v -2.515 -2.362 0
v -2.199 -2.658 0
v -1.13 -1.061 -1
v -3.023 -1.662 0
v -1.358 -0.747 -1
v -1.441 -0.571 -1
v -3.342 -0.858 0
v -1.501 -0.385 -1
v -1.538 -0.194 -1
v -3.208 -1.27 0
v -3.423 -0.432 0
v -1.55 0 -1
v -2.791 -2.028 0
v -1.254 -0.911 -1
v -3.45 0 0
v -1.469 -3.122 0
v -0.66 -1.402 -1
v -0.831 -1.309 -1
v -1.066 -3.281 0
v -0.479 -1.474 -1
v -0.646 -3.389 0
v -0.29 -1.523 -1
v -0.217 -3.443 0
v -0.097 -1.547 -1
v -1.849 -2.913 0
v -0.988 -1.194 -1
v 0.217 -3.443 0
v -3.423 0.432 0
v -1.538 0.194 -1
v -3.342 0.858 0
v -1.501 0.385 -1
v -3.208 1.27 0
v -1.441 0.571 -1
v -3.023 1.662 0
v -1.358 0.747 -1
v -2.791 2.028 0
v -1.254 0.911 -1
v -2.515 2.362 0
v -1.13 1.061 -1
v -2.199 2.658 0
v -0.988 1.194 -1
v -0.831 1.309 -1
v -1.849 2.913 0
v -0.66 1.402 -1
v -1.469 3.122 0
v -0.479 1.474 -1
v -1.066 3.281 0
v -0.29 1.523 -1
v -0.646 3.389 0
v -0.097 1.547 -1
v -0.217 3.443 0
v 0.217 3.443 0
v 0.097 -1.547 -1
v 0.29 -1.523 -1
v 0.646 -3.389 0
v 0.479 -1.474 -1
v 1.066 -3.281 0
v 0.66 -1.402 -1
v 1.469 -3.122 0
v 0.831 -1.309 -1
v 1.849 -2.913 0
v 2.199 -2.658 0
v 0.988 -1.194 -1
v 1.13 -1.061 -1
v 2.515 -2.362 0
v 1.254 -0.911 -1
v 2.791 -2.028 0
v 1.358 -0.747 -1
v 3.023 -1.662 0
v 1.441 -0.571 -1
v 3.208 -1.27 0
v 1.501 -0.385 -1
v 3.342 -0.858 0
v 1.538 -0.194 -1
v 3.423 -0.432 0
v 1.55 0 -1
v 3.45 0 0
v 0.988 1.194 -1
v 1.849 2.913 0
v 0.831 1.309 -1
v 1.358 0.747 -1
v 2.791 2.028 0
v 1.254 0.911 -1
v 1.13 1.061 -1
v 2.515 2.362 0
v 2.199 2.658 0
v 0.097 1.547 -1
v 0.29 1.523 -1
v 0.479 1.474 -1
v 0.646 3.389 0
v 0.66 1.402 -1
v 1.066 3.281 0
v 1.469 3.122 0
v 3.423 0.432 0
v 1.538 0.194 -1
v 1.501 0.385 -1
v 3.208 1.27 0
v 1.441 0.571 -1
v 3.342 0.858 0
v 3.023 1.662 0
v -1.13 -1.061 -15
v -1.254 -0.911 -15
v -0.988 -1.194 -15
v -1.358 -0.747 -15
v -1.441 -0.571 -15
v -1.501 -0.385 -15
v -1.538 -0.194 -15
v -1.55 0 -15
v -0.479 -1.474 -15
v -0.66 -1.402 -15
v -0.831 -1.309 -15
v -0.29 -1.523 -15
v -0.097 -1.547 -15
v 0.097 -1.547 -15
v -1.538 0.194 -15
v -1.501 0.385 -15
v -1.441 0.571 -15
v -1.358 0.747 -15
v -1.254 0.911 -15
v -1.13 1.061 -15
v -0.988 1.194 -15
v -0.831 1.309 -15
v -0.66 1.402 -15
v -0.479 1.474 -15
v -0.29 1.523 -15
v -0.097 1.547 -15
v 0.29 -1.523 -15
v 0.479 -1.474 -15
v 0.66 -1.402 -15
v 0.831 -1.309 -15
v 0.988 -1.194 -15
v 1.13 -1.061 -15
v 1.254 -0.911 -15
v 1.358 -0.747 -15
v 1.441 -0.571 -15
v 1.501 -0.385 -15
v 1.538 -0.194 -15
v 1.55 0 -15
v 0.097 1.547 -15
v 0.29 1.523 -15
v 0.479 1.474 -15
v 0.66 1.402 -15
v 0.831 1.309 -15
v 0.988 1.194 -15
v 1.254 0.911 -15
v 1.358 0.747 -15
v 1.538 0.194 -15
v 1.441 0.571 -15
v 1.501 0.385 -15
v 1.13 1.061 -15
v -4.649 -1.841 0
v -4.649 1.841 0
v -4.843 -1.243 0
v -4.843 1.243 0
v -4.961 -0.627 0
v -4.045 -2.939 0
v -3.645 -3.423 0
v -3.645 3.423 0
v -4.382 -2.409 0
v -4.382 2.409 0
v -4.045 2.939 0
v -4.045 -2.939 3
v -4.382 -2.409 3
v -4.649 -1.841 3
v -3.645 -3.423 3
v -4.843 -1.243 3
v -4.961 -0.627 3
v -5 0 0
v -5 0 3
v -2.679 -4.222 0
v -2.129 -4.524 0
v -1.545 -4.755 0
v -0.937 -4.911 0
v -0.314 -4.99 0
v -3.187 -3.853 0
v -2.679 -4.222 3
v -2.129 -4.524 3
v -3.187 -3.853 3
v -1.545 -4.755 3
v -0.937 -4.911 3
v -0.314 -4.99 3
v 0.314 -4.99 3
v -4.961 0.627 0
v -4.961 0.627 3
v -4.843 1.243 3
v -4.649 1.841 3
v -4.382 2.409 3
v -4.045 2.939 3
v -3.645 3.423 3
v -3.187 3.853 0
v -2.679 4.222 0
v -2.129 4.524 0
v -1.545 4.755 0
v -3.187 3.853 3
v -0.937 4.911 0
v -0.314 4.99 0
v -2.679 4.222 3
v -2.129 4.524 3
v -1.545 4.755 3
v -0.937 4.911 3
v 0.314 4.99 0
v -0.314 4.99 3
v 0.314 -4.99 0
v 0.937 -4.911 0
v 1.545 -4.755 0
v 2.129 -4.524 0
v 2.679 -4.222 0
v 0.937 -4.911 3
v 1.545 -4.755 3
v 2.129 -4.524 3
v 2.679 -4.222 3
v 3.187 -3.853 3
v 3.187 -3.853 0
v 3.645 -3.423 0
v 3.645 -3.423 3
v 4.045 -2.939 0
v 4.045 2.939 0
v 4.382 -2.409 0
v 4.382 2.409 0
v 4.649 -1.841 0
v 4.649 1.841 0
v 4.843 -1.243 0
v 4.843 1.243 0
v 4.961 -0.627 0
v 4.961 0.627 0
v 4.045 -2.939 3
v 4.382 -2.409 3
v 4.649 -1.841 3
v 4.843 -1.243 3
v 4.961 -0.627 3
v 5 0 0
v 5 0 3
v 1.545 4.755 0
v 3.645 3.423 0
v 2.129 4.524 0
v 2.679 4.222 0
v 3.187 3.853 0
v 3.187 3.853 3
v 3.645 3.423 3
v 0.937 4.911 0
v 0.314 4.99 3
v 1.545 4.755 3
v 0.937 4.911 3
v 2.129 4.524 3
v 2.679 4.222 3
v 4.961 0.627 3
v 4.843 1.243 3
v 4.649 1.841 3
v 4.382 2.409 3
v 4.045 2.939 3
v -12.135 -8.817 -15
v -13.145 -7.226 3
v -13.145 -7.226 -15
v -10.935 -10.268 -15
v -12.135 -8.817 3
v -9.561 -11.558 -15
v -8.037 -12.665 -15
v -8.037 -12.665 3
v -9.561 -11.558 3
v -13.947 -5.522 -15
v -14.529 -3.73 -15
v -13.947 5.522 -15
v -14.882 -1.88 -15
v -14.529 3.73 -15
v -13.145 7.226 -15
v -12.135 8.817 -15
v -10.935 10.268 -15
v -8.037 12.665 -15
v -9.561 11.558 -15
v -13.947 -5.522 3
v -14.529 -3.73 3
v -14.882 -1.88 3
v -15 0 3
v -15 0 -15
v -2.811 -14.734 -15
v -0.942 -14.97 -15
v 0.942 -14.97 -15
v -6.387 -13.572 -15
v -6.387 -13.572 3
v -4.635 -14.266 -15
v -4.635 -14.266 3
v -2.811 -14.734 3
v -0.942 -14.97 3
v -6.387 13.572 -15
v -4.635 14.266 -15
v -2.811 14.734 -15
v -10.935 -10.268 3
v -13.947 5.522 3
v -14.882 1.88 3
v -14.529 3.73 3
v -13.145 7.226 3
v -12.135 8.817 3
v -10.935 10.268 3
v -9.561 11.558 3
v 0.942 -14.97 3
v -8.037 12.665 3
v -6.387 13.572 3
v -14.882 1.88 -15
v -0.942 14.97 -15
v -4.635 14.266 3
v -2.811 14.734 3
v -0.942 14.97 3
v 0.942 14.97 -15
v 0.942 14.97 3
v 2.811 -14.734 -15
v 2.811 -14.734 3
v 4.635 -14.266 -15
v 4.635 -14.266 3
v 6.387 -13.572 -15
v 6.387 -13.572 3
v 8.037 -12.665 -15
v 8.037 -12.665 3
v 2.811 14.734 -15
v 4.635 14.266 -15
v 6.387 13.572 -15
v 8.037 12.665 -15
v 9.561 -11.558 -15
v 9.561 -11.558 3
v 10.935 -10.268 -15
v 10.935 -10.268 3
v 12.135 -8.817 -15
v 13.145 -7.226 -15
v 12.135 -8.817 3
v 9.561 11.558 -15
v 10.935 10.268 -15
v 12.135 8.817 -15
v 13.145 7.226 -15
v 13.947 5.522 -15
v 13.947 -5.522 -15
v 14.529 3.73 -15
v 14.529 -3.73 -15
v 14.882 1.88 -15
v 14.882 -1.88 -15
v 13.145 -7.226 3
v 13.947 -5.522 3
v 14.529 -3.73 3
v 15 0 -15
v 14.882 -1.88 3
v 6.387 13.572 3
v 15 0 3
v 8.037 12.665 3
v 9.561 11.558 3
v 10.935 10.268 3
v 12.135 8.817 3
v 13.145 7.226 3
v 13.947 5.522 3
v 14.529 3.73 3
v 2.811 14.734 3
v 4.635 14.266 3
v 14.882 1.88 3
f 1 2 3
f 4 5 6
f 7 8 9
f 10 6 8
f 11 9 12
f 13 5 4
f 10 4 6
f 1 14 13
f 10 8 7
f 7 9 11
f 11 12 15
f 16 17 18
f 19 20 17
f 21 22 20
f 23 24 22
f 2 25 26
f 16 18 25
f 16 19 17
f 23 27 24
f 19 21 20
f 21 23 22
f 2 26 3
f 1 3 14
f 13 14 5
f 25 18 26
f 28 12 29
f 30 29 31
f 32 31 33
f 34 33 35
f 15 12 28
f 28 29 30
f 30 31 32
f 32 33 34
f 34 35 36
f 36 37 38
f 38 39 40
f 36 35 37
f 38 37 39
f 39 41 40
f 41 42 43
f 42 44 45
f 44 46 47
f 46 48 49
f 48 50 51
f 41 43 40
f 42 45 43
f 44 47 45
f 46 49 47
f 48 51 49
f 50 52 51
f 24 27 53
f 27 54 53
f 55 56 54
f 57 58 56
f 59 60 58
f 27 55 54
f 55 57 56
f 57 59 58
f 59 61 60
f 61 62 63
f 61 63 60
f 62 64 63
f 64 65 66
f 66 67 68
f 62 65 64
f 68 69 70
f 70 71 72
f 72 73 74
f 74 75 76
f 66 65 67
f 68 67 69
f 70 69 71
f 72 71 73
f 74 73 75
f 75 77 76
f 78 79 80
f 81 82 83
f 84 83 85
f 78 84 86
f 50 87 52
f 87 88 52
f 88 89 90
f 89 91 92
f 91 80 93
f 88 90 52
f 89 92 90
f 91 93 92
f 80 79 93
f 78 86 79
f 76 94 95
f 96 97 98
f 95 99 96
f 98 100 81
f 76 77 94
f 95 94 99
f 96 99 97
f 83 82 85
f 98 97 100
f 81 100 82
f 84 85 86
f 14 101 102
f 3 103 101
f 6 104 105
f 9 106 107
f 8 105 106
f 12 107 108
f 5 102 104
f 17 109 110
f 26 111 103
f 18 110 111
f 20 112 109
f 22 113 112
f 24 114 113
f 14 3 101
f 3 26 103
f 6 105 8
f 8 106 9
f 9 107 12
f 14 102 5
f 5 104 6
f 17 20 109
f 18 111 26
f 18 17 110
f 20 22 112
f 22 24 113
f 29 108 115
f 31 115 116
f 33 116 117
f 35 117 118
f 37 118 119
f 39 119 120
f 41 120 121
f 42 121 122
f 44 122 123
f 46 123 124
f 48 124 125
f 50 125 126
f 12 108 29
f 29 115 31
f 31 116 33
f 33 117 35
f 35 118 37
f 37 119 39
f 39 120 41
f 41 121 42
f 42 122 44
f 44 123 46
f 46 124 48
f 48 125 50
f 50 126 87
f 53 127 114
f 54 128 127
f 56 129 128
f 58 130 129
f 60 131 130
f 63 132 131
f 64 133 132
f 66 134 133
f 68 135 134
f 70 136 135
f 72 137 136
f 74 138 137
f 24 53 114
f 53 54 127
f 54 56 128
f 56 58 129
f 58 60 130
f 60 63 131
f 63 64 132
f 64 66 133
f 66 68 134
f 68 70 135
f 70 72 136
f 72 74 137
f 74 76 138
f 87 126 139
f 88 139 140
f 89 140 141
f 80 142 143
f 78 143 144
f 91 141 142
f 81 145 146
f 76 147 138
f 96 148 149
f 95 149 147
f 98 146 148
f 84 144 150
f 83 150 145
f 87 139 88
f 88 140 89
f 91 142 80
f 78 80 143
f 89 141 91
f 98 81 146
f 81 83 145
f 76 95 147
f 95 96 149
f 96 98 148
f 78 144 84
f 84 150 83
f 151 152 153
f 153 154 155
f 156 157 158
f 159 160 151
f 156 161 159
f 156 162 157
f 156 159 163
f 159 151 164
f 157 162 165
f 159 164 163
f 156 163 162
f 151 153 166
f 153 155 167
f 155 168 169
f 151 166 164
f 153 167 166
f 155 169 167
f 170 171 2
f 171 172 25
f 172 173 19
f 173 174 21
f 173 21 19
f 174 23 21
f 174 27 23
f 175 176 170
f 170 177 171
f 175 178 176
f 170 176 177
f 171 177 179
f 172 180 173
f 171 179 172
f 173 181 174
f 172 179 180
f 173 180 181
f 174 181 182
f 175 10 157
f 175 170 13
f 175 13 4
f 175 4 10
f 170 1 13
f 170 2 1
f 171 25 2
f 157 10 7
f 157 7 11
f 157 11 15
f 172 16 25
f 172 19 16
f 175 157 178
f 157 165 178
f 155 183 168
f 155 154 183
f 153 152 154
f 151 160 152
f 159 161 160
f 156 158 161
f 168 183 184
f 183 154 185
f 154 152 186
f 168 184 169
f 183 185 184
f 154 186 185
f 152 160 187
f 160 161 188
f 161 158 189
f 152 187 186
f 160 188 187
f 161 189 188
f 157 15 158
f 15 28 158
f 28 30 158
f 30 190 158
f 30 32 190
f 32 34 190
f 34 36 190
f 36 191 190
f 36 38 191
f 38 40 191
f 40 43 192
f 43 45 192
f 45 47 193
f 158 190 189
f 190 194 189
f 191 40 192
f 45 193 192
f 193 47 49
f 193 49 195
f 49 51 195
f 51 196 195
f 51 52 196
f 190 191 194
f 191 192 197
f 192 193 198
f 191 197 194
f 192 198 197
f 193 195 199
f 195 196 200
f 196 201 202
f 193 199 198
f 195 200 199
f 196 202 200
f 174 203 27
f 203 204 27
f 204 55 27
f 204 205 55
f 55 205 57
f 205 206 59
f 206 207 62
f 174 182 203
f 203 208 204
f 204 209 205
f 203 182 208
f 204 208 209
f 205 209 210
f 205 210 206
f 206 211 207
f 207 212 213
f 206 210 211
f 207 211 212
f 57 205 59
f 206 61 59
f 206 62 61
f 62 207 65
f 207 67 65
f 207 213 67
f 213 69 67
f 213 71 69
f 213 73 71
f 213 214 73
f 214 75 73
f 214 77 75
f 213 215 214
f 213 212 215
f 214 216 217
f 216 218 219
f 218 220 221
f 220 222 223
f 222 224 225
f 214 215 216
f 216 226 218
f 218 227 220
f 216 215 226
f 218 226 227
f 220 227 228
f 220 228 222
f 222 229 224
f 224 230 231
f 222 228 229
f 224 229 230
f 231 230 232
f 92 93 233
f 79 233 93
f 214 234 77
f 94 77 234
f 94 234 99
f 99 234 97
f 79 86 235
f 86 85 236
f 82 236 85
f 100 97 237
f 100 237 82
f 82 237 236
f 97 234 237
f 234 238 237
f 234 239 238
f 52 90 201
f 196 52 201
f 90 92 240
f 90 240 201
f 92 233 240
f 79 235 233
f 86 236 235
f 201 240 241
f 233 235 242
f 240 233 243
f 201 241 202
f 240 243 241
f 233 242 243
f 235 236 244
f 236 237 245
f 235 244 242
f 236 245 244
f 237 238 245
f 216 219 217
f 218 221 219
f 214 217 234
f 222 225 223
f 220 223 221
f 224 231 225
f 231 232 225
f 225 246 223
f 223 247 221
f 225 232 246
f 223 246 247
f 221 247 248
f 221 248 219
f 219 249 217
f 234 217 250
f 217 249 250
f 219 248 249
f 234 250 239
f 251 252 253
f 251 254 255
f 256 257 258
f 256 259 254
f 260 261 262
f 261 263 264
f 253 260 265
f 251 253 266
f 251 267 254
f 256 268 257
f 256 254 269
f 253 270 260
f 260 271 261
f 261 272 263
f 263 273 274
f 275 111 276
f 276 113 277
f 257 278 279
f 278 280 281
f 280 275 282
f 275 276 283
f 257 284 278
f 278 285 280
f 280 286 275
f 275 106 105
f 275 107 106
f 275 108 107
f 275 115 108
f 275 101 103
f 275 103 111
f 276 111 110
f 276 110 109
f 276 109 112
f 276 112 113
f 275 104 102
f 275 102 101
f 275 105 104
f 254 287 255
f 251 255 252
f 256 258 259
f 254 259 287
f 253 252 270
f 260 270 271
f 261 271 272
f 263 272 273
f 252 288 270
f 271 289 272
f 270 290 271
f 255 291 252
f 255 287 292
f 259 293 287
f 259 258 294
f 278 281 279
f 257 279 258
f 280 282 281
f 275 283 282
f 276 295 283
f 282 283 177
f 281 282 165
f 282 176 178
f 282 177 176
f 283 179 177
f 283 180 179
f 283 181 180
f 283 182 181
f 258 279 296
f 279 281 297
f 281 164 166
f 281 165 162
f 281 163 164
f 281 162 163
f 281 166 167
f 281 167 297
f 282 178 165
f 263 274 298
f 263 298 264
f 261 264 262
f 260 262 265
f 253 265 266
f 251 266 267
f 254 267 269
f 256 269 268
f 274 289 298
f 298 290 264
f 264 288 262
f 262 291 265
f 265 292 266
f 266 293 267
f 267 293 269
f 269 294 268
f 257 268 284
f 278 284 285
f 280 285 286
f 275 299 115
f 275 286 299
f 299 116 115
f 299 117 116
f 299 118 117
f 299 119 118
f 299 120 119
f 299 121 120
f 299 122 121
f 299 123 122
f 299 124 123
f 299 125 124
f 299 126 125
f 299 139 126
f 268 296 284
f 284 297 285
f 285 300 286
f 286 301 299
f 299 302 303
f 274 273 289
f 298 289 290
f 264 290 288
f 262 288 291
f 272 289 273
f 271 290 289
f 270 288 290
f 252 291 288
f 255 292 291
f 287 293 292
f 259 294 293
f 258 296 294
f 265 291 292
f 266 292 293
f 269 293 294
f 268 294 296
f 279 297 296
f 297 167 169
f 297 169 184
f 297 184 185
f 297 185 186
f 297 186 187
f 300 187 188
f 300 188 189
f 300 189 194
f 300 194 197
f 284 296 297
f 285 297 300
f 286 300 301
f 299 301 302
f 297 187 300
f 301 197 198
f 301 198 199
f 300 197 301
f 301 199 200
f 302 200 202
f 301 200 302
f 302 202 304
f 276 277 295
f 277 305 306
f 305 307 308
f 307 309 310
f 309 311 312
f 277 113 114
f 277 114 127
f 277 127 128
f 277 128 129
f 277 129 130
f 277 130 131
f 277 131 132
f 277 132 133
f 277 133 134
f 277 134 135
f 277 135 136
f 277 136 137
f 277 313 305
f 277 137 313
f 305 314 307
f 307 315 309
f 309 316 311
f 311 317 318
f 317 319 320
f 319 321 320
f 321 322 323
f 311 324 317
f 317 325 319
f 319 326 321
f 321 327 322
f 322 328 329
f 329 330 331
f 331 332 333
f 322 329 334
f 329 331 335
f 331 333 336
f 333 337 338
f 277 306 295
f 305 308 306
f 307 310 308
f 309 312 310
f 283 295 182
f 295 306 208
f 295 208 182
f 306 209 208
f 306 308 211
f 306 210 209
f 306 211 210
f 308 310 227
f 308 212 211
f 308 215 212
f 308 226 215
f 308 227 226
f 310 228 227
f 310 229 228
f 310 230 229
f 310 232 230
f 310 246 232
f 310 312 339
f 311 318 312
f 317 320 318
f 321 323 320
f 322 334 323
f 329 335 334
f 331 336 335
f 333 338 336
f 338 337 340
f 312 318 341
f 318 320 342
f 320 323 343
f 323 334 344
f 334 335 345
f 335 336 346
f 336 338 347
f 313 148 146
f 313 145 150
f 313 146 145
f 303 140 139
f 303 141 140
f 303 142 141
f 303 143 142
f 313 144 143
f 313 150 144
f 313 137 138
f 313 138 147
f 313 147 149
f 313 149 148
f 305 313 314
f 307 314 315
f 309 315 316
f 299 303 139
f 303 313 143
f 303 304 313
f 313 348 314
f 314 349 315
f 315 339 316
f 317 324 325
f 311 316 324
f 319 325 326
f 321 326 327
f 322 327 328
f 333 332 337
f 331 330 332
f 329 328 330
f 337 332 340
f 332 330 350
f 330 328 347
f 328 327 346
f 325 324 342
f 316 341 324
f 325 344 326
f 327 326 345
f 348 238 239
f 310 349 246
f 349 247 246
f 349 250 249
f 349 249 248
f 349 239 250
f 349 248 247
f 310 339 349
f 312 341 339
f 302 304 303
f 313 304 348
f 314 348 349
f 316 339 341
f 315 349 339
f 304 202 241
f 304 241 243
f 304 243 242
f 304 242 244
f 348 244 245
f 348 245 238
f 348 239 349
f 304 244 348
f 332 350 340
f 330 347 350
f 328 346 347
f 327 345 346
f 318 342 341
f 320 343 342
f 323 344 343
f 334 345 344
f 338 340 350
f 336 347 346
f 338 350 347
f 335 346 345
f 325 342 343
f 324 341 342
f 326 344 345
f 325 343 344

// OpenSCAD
$fn = 50;

difference() {
	union() {
		translate(v = [0, 0, -15.0]) {
			cylinder(h = 18, r = 15.0);
		}
	}
	union() {
		translate(v = [0, 0, 0]) {
			rotate(a = [0, 0, 0]) {
				difference() {
					union() {
						translate(v = [0, 0, -18.0]) {
							cylinder(h = 18, r = 1.25);
						}
						translate(v = [0, 0, -1.0]) {
							cylinder(h = 1.0, r1 = 1.55, r2 = 3.45);
						}
						translate(v = [0, 0, -18.0]) {
							cylinder(h = 18, r = 1.55);
						}
						translate(v = [0, 0, -18.0]) {
							cylinder(h = 18, r = 1.25);
						}
					}
					union();
				}
			}
		}
		#cylinder(h = 3, r = 5.0);
	}
}
